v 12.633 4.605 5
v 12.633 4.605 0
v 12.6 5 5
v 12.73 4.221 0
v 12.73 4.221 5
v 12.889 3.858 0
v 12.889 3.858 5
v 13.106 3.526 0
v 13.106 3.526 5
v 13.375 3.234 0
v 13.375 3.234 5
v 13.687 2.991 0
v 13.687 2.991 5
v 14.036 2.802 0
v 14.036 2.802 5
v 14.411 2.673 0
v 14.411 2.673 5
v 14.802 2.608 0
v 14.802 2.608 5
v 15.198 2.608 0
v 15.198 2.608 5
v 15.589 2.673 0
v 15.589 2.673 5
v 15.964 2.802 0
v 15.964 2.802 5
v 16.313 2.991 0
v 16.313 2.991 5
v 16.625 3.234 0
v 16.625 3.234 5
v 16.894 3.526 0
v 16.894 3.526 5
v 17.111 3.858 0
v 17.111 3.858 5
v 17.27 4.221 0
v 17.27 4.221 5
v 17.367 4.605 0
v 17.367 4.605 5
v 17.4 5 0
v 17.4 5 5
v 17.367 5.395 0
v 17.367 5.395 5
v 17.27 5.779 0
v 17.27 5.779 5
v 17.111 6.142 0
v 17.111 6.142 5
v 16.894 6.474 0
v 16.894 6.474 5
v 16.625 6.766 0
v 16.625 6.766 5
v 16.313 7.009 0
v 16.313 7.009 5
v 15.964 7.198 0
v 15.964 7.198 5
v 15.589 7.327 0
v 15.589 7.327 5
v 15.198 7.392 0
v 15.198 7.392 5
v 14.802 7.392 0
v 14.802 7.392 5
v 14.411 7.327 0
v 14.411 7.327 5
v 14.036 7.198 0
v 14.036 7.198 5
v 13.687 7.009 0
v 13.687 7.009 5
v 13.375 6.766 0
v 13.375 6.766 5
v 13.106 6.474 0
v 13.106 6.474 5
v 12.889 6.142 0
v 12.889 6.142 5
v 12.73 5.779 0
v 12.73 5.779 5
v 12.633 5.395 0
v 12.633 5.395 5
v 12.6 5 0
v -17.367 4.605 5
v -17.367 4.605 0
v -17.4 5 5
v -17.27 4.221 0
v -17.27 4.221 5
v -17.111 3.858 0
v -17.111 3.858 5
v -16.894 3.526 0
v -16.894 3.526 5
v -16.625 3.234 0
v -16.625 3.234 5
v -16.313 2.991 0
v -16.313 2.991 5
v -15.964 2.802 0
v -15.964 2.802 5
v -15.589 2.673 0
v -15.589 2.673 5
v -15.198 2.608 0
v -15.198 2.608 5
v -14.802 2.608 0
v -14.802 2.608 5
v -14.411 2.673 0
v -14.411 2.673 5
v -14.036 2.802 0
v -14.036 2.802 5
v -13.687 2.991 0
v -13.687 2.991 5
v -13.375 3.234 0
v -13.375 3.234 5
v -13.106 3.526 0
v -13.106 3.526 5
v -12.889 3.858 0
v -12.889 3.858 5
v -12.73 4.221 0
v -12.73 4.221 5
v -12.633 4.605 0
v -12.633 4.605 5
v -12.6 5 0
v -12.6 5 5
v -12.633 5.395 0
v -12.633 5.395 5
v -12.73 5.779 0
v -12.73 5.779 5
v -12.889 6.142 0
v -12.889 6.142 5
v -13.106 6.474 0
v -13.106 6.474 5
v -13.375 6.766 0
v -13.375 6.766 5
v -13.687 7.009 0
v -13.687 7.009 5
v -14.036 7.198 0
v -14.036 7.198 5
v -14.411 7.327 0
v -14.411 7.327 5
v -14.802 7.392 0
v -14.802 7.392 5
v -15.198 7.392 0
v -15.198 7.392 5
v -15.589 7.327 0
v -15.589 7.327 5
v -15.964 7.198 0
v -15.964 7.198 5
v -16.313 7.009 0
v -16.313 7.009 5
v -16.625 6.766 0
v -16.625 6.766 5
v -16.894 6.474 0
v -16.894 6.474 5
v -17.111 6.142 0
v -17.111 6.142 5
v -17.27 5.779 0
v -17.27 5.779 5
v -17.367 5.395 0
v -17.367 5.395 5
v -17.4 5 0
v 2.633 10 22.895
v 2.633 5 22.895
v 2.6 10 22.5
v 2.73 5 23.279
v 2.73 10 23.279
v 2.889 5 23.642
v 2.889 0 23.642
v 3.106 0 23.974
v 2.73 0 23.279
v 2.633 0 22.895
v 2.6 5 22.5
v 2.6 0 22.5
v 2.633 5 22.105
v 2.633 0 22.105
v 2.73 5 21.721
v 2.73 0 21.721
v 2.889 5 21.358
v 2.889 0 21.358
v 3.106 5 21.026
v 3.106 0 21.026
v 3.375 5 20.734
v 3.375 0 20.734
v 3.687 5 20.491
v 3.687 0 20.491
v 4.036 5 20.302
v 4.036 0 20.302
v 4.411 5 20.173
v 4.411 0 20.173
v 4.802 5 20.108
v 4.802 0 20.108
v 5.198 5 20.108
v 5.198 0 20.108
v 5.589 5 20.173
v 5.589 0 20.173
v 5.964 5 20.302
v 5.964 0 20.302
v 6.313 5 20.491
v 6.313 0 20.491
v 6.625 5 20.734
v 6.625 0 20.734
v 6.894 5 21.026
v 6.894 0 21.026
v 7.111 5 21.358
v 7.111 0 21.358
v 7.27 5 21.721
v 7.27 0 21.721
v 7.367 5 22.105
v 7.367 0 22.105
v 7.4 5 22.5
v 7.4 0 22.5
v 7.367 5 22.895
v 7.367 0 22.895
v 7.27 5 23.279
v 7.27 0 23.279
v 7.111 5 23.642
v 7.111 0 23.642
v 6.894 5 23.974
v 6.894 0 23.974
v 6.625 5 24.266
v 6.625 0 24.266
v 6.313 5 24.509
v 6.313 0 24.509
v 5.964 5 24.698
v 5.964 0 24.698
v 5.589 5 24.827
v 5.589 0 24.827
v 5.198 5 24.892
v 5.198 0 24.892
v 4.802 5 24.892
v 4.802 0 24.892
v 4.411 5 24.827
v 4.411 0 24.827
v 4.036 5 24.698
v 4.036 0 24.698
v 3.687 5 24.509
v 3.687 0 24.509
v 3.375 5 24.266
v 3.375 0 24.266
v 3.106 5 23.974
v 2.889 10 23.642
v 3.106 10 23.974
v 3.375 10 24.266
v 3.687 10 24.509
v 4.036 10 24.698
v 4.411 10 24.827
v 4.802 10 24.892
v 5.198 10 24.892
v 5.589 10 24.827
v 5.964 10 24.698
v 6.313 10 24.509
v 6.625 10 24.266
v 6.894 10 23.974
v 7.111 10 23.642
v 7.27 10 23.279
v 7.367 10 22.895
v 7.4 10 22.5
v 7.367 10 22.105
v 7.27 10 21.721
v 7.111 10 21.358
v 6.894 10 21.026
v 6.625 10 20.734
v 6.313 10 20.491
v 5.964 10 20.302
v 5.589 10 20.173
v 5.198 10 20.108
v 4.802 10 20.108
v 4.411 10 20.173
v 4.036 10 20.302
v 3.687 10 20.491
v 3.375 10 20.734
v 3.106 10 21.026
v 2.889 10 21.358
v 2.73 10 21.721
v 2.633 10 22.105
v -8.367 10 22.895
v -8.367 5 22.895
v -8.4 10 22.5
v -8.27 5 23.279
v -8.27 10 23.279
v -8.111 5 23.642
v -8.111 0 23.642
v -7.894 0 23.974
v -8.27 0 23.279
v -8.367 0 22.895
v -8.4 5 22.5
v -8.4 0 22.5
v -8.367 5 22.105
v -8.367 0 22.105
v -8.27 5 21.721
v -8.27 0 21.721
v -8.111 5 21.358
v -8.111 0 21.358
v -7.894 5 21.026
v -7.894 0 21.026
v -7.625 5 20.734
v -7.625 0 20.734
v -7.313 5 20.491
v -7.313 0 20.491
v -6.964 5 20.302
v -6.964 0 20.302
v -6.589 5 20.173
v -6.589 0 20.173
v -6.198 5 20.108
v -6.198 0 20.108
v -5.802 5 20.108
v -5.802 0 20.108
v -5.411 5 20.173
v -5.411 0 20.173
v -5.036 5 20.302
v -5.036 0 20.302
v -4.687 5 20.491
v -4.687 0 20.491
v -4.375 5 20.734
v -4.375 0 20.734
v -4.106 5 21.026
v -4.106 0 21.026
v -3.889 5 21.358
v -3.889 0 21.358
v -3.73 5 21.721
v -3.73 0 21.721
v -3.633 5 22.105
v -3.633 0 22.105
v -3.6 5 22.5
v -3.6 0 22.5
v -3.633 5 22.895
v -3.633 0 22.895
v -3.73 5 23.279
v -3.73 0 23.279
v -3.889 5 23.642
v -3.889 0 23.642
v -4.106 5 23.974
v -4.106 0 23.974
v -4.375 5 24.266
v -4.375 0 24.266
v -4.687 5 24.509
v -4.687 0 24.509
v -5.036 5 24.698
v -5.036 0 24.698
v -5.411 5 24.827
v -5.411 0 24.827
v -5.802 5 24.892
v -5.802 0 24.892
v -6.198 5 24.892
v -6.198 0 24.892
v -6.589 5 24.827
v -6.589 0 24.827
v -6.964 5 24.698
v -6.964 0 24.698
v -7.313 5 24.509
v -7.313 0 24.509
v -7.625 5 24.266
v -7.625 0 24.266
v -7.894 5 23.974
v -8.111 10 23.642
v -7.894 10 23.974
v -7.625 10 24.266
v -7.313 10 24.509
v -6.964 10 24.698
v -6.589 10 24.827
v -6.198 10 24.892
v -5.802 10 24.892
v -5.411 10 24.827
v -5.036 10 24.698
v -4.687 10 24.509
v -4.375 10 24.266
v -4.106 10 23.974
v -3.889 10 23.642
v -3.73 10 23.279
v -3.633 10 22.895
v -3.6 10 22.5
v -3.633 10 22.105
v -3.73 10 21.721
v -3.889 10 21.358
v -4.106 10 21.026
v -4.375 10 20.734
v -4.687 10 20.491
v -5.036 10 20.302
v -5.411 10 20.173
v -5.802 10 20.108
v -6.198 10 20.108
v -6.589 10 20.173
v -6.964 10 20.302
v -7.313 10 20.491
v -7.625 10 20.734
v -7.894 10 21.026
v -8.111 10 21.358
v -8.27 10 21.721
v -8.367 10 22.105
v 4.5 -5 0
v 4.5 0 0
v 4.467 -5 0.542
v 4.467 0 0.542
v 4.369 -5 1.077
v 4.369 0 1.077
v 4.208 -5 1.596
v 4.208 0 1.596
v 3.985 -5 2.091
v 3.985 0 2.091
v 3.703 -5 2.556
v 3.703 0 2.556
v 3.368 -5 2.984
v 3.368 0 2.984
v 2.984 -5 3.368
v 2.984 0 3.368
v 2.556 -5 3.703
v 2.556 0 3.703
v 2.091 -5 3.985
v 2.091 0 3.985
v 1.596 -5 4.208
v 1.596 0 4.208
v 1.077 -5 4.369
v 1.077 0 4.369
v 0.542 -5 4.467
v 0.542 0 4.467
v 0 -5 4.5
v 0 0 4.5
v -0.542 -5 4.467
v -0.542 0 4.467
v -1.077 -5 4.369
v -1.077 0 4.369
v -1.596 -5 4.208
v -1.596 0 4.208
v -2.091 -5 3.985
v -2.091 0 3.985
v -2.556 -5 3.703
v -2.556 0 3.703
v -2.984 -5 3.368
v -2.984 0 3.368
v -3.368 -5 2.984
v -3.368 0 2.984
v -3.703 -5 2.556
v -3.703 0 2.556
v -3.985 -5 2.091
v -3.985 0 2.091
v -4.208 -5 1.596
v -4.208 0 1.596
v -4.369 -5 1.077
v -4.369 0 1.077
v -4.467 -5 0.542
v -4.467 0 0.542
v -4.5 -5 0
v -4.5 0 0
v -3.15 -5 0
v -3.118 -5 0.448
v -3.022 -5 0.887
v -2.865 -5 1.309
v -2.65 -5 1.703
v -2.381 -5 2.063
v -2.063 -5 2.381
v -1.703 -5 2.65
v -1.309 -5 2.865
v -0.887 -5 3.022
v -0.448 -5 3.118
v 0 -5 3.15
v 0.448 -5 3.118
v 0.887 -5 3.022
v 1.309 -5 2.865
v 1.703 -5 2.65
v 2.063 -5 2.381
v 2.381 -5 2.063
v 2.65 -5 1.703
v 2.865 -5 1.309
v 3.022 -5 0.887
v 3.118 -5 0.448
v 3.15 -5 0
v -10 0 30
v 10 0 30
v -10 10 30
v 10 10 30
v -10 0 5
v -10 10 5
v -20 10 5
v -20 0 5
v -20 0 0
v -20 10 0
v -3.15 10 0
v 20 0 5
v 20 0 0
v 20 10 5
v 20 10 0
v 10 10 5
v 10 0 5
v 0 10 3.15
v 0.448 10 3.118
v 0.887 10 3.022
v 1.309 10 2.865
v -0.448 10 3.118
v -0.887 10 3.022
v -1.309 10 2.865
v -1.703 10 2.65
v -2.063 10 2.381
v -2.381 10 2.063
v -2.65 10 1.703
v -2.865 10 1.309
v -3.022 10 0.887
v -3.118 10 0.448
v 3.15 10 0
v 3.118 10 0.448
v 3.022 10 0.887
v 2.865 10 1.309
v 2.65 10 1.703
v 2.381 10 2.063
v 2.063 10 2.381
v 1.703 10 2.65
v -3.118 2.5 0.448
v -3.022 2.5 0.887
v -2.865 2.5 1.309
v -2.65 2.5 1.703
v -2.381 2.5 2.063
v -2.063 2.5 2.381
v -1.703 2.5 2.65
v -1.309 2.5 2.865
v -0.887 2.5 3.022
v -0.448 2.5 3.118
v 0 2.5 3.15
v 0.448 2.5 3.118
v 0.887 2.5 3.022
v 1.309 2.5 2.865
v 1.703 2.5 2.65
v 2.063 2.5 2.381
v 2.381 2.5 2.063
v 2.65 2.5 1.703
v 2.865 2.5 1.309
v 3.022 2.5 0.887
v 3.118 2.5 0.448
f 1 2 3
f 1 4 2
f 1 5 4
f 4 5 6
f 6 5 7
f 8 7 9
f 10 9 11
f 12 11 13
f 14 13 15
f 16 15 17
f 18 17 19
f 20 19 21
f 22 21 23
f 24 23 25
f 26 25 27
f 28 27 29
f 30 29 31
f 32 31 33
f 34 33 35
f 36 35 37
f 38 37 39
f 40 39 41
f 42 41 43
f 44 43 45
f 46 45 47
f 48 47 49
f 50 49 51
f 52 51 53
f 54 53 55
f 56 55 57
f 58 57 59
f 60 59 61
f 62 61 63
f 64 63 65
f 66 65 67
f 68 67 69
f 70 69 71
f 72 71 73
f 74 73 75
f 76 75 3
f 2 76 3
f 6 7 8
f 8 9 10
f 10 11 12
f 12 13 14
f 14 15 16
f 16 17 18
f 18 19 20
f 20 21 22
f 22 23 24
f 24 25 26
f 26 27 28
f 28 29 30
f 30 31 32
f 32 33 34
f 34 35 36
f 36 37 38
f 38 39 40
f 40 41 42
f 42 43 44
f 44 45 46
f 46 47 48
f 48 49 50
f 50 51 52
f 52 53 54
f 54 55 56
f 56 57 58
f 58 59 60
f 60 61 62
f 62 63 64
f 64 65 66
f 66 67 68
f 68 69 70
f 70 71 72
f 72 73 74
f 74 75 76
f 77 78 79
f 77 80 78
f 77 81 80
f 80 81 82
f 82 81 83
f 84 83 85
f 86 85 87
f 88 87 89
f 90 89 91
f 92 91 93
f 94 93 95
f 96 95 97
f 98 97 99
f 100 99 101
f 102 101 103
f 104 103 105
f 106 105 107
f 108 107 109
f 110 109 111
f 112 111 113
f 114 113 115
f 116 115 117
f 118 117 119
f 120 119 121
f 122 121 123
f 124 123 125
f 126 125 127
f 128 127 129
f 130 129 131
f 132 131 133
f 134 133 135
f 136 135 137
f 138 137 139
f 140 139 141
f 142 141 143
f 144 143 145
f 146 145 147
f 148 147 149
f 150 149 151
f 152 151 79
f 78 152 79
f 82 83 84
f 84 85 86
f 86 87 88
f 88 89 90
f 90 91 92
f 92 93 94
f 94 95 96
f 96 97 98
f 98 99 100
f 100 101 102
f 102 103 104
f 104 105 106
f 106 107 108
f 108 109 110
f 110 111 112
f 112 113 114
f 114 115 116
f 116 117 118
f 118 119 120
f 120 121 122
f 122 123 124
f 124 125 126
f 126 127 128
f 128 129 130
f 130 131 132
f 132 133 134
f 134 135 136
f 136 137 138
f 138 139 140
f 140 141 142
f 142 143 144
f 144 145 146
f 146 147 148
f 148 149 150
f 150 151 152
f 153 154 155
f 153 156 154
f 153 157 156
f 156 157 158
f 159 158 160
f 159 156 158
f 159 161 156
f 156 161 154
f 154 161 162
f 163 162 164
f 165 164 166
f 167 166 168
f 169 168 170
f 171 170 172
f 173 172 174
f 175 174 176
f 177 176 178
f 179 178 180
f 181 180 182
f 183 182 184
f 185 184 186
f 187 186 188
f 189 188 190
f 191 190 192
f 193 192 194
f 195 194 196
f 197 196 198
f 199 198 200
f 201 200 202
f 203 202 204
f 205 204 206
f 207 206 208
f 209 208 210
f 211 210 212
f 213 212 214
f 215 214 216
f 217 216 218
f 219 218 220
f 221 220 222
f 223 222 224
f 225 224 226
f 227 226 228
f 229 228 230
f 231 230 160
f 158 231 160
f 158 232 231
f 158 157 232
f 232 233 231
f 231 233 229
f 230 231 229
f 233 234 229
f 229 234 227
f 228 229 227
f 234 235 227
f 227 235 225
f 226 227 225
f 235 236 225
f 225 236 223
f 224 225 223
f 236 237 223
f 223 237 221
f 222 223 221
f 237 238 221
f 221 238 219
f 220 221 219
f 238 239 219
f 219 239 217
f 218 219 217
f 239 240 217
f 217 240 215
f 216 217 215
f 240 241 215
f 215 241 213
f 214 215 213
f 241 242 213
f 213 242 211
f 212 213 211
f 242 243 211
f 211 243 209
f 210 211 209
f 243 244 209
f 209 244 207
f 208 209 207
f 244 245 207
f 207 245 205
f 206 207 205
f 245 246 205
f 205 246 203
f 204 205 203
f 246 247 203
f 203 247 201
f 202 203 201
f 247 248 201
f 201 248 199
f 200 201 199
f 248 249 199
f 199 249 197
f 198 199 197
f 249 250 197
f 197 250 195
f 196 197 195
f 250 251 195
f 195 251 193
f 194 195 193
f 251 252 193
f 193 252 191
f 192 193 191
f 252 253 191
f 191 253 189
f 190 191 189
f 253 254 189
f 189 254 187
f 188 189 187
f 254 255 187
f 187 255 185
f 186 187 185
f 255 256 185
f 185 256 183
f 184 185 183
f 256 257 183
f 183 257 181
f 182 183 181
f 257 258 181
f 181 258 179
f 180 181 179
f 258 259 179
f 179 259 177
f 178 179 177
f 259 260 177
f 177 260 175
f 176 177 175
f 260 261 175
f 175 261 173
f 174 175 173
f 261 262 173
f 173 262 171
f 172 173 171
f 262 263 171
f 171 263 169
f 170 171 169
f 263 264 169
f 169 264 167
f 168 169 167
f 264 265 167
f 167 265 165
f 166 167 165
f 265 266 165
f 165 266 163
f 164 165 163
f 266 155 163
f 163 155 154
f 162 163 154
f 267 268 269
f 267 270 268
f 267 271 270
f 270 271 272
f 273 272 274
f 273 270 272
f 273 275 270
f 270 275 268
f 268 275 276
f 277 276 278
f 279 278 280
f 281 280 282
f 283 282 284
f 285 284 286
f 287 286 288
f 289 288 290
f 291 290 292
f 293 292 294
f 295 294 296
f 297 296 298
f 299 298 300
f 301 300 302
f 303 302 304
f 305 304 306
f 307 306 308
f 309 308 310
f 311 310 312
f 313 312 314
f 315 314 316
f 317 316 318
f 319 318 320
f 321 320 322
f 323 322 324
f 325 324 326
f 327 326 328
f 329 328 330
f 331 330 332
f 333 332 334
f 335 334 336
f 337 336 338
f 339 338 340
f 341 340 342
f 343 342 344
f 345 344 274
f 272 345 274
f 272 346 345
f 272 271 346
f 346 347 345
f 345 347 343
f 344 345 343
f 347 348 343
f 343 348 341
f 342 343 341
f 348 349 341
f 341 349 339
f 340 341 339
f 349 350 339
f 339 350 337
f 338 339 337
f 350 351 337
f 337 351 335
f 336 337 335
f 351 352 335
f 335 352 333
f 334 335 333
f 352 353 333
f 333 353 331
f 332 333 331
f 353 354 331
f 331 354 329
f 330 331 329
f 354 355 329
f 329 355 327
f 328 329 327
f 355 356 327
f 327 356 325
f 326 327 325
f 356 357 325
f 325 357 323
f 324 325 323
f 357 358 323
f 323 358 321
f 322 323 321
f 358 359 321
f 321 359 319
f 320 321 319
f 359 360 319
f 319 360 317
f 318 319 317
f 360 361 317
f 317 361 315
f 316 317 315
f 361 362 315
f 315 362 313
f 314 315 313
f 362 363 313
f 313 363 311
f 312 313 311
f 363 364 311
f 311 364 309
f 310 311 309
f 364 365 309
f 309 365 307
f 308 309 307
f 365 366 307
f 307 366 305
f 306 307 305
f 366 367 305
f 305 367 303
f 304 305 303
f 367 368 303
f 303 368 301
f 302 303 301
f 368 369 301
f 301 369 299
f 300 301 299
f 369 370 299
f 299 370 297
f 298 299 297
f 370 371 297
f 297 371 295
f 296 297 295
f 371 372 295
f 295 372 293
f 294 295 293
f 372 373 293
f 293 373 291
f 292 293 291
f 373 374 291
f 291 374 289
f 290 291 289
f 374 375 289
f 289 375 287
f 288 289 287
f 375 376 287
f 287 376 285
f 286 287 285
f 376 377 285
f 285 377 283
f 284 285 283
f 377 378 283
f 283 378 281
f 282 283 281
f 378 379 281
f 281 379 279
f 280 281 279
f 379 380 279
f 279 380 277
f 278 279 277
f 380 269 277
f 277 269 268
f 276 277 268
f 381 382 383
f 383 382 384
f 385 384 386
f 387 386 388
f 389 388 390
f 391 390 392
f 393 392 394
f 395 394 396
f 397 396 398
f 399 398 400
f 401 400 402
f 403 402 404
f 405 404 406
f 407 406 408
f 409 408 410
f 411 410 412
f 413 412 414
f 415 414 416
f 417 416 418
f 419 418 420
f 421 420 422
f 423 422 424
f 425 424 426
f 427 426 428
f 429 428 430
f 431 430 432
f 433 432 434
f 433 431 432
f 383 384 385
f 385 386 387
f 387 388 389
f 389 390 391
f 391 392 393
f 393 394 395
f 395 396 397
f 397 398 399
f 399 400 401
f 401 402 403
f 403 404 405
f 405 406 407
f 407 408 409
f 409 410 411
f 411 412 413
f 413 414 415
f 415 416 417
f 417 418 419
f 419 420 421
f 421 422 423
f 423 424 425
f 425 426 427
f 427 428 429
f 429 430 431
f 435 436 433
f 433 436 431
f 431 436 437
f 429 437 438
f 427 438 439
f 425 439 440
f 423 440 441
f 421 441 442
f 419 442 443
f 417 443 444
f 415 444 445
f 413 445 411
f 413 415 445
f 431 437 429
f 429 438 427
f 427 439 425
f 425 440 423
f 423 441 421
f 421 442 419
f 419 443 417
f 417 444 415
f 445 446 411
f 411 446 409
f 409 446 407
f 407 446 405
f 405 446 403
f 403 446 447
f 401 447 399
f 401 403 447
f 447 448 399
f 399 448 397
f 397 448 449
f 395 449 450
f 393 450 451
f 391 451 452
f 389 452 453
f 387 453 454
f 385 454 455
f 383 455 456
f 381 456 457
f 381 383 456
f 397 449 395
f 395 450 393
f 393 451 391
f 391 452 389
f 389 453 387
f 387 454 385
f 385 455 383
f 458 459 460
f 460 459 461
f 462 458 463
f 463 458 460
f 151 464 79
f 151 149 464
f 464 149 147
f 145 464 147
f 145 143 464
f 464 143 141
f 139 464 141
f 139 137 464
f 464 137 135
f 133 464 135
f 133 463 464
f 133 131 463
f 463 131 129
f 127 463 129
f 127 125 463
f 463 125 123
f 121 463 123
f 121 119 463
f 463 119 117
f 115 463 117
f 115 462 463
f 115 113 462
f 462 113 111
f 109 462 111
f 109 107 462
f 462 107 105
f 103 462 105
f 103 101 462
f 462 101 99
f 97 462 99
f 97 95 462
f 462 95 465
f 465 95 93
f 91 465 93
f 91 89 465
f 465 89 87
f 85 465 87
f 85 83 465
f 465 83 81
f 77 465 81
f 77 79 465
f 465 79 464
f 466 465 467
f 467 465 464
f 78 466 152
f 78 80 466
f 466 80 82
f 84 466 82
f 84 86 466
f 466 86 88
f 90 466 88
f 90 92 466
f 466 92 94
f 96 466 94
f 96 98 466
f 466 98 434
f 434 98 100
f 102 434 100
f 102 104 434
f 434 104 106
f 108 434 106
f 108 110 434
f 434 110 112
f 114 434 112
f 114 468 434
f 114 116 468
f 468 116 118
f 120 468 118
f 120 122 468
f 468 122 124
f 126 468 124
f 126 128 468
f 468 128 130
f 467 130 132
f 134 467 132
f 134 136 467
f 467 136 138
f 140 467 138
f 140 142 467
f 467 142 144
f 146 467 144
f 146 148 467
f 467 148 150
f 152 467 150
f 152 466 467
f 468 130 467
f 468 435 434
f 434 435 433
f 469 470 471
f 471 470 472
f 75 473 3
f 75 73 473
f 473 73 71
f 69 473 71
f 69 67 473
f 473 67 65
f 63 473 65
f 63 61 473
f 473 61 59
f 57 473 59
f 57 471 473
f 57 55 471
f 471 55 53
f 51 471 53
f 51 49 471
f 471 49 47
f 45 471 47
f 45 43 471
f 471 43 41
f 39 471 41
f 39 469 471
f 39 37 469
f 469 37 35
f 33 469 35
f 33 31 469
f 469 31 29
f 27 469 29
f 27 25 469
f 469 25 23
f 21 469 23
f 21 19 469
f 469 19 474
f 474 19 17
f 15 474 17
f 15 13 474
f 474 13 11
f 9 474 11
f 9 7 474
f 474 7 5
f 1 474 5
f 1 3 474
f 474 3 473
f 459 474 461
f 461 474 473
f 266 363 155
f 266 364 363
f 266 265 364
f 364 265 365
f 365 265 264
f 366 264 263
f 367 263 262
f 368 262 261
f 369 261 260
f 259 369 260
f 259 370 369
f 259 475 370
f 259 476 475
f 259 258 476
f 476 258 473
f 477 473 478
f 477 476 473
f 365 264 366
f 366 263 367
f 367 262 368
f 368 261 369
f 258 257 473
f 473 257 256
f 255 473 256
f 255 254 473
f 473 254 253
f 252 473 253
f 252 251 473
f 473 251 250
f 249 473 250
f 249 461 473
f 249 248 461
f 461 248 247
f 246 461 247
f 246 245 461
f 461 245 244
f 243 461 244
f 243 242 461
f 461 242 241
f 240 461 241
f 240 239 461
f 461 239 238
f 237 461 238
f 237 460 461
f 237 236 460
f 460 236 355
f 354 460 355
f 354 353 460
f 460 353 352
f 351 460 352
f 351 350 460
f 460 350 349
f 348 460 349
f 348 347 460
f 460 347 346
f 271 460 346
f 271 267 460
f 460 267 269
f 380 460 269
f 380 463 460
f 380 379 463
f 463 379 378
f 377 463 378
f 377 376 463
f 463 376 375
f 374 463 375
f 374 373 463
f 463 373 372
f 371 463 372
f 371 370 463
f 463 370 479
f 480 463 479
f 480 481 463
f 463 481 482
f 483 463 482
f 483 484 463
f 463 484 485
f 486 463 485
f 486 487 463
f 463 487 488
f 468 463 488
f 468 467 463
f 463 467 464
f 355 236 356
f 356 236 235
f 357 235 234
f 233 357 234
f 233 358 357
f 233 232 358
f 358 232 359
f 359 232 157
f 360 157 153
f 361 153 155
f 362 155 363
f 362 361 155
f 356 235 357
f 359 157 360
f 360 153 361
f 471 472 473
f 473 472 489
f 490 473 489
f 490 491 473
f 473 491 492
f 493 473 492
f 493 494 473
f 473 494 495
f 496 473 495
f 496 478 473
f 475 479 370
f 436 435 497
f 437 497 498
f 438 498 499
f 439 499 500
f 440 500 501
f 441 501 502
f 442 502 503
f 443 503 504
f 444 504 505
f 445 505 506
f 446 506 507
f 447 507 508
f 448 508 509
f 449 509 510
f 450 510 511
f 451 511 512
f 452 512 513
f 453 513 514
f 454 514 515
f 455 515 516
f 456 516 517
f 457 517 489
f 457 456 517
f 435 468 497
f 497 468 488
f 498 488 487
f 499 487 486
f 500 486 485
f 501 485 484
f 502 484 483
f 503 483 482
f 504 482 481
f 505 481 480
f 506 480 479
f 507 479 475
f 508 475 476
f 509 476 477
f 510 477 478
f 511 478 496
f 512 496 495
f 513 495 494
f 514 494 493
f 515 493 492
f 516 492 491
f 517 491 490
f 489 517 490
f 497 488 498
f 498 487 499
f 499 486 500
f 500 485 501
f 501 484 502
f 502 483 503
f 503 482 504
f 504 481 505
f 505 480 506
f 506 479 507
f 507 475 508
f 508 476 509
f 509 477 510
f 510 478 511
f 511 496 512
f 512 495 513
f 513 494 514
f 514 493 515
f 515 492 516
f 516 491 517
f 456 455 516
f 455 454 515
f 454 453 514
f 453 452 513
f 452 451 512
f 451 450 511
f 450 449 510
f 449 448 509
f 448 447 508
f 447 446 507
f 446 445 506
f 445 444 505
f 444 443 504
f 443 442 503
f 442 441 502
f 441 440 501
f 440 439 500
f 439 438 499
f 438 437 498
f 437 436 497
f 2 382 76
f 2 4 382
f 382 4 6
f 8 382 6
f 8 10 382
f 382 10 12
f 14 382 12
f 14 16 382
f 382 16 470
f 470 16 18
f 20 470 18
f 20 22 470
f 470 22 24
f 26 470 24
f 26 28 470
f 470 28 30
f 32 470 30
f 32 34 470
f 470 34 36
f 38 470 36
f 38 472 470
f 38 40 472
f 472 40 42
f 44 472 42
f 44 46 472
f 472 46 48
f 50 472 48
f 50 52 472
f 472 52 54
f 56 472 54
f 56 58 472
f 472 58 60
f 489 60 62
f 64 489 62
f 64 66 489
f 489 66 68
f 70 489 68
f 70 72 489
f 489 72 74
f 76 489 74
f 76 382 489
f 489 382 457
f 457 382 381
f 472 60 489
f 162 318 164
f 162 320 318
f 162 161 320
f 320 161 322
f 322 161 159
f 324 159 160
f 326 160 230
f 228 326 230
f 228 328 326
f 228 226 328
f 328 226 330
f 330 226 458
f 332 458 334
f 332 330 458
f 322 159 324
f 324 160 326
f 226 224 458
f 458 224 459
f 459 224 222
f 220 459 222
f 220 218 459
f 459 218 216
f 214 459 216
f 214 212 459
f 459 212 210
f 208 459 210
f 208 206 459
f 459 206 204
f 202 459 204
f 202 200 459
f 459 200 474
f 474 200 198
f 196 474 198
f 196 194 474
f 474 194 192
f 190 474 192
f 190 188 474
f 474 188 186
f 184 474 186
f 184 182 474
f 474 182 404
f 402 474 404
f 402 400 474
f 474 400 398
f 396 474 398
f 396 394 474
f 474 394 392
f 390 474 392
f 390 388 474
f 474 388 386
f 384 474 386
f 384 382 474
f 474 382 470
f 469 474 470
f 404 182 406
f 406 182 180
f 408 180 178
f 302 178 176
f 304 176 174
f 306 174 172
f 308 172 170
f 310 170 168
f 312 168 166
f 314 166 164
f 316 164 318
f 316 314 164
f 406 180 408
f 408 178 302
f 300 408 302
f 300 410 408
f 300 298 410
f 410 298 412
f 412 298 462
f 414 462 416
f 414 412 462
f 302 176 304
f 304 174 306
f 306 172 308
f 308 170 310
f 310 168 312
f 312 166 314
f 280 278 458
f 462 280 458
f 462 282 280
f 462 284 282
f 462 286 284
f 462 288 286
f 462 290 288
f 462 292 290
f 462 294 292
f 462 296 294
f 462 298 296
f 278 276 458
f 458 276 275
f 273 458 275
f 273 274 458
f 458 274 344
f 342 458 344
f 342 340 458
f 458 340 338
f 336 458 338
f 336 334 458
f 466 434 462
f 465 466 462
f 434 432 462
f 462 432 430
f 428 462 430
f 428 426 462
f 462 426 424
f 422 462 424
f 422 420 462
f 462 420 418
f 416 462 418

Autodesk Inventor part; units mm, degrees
ref_plane "YZ Plane" through (0, 0, 0) normal (1, 0, 0) x (0, 1, 0)
ref_plane "XZ Plane" through (0, 0, 0) normal (0, 1, 0) x (-1, 0, 0)
ref_plane "XY Plane" through (0, 0, 0) normal (0, 0, 1) x (1, 0, 0)
sketch "Sketch1" plane through (0, 0, 0) normal (0, 1, 0) x (-1, 0, 0)
  circle A0 centre (0, 0) radius 3.15
  line L0 (10, 5) -> (10, 30)
  line L1 (10, 30) -> (-10, 30)
  line L2 (-10, 30) -> (-10, 5)
  line L3 (10, -5) -> (10, -30)
  line L4 (10, -30) -> (-10, -30)
  line L5 (-10, -30) -> (-10, -5)
  line L6 (-10, 30) -> (-10, 15)
  line L7 (10, 30) -> (10, 15)
  line L8 (10, -30) -> (10, -15)
  line L9 (-10, -15) -> (-10, -30)
  line L10 (2.5151, -1.8965) -> (-2.5151, -1.8965)
  circle A1 centre (0, 0) radius 4.5
  line L11 (10, 0) -> (3.15, 0)
  line L12 (-3.15, 0) -> (-10, 0)
  line L13 (-10, 0) -> (-20, 0)
  line L14 (-20, 0) -> (-20, -5)
  line L15 (-20, -5) -> (-10, -5)
  line L16 (10, 0) -> (20, 0)
  line L17 (20, 0) -> (20, -5)
  line L18 (20, -5) -> (10, -5)
  line L19 (-4.5, 0) -> (-3.15, 0)
  line L20 (3.15, 0) -> (4.5, 0)
  line L21 (20, 0) -> (20, 5)
  line L22 (20, 5) -> (10, 5)
  line L23 (-20, 0) -> (-20, 5)
  line L24 (-20, 5) -> (-10, 5)
  circle A2 centre (-5, 22.5) radius 2.25
  circle A3 centre (6, 22.5) radius 2.25
  circle A4 centre (-6, -22.5) radius 2.25
  circle A5 centre (6, -22.5) radius 2.25
  circle A6 centre (-5, 22.5) radius 2.4
  circle A7 centre (6, 22.5) radius 2.4
  dimension "d0" = 6.3
  dimension "d6" = 15
  dimension "d34" = 9
  dimension "d35" = 10
  dimension "d36" = 5
  dimension "d37" = 10
  dimension "d38" = 5
  dimension "d43" = 5
  dimension "d44" = 5
  dimension "d45" = 4.5
  dimension "d46" = 4.5
  dimension "d47" = 4.5
  dimension "d48" = 4.5
  dimension "d61" = 4.8
  dimension "d62" = 4.8
extrude "Extrusion10" add sketch "Sketch1" along normal blind 10 contours A0 L12 A1 L11 | A1 L12 L13 L23 L24 L2 L1 L0 L22 L21 L16 L11 | A6 | A7 picked at (-4.0064, 0.359)
extrude "Extrusion11" add sketch "Sketch1" against normal blind 5 contours A0 L12 A1 L11 picked at (-4.0064, 0.359)
sketch "Sketch3" plane through (-3.15, 10, 0) normal (0, 0, -1) x (-1, 0, 0)
  line L0 (-23.15, -10) -> (-23.15, -5)
  line L1 (-23.15, -10) -> (-23.15, 0) projected
  line L2 (-23.15, -5) -> (-18.15, -5)
  line L3 (16.85, -10) -> (16.85, -5)
  line L4 (16.85, -10) -> (16.85, 0) projected
  line L5 (16.85, -5) -> (11.85, -5)
  circle A0 centre (-18.15, -5) radius 2.35
  circle A1 centre (11.85, -5) radius 2.35
  circle A2 centre (-18.15, -5) radius 2.4
  circle A3 centre (11.85, -5) radius 2.4
  point P0 (-3.15, -10)
  dimension "d53" = 5
  dimension "d54" = 5
  dimension "d55" = 5
  dimension "d56" = 5
  dimension "d57" = 4.7
  dimension "d58" = 4.7
  dimension "d65" = 4.8
  dimension "d66" = 4.8
extrude "Extrusion13" cut sketch "Sketch1" along normal blind 10 contours A6 | A7
extrude "Extrusion14" cut sketch "Sketch3" against normal blind 10 contours A0 | A2 | A1 | A3
properties part number "clip_to_shaft_holder(2)"
